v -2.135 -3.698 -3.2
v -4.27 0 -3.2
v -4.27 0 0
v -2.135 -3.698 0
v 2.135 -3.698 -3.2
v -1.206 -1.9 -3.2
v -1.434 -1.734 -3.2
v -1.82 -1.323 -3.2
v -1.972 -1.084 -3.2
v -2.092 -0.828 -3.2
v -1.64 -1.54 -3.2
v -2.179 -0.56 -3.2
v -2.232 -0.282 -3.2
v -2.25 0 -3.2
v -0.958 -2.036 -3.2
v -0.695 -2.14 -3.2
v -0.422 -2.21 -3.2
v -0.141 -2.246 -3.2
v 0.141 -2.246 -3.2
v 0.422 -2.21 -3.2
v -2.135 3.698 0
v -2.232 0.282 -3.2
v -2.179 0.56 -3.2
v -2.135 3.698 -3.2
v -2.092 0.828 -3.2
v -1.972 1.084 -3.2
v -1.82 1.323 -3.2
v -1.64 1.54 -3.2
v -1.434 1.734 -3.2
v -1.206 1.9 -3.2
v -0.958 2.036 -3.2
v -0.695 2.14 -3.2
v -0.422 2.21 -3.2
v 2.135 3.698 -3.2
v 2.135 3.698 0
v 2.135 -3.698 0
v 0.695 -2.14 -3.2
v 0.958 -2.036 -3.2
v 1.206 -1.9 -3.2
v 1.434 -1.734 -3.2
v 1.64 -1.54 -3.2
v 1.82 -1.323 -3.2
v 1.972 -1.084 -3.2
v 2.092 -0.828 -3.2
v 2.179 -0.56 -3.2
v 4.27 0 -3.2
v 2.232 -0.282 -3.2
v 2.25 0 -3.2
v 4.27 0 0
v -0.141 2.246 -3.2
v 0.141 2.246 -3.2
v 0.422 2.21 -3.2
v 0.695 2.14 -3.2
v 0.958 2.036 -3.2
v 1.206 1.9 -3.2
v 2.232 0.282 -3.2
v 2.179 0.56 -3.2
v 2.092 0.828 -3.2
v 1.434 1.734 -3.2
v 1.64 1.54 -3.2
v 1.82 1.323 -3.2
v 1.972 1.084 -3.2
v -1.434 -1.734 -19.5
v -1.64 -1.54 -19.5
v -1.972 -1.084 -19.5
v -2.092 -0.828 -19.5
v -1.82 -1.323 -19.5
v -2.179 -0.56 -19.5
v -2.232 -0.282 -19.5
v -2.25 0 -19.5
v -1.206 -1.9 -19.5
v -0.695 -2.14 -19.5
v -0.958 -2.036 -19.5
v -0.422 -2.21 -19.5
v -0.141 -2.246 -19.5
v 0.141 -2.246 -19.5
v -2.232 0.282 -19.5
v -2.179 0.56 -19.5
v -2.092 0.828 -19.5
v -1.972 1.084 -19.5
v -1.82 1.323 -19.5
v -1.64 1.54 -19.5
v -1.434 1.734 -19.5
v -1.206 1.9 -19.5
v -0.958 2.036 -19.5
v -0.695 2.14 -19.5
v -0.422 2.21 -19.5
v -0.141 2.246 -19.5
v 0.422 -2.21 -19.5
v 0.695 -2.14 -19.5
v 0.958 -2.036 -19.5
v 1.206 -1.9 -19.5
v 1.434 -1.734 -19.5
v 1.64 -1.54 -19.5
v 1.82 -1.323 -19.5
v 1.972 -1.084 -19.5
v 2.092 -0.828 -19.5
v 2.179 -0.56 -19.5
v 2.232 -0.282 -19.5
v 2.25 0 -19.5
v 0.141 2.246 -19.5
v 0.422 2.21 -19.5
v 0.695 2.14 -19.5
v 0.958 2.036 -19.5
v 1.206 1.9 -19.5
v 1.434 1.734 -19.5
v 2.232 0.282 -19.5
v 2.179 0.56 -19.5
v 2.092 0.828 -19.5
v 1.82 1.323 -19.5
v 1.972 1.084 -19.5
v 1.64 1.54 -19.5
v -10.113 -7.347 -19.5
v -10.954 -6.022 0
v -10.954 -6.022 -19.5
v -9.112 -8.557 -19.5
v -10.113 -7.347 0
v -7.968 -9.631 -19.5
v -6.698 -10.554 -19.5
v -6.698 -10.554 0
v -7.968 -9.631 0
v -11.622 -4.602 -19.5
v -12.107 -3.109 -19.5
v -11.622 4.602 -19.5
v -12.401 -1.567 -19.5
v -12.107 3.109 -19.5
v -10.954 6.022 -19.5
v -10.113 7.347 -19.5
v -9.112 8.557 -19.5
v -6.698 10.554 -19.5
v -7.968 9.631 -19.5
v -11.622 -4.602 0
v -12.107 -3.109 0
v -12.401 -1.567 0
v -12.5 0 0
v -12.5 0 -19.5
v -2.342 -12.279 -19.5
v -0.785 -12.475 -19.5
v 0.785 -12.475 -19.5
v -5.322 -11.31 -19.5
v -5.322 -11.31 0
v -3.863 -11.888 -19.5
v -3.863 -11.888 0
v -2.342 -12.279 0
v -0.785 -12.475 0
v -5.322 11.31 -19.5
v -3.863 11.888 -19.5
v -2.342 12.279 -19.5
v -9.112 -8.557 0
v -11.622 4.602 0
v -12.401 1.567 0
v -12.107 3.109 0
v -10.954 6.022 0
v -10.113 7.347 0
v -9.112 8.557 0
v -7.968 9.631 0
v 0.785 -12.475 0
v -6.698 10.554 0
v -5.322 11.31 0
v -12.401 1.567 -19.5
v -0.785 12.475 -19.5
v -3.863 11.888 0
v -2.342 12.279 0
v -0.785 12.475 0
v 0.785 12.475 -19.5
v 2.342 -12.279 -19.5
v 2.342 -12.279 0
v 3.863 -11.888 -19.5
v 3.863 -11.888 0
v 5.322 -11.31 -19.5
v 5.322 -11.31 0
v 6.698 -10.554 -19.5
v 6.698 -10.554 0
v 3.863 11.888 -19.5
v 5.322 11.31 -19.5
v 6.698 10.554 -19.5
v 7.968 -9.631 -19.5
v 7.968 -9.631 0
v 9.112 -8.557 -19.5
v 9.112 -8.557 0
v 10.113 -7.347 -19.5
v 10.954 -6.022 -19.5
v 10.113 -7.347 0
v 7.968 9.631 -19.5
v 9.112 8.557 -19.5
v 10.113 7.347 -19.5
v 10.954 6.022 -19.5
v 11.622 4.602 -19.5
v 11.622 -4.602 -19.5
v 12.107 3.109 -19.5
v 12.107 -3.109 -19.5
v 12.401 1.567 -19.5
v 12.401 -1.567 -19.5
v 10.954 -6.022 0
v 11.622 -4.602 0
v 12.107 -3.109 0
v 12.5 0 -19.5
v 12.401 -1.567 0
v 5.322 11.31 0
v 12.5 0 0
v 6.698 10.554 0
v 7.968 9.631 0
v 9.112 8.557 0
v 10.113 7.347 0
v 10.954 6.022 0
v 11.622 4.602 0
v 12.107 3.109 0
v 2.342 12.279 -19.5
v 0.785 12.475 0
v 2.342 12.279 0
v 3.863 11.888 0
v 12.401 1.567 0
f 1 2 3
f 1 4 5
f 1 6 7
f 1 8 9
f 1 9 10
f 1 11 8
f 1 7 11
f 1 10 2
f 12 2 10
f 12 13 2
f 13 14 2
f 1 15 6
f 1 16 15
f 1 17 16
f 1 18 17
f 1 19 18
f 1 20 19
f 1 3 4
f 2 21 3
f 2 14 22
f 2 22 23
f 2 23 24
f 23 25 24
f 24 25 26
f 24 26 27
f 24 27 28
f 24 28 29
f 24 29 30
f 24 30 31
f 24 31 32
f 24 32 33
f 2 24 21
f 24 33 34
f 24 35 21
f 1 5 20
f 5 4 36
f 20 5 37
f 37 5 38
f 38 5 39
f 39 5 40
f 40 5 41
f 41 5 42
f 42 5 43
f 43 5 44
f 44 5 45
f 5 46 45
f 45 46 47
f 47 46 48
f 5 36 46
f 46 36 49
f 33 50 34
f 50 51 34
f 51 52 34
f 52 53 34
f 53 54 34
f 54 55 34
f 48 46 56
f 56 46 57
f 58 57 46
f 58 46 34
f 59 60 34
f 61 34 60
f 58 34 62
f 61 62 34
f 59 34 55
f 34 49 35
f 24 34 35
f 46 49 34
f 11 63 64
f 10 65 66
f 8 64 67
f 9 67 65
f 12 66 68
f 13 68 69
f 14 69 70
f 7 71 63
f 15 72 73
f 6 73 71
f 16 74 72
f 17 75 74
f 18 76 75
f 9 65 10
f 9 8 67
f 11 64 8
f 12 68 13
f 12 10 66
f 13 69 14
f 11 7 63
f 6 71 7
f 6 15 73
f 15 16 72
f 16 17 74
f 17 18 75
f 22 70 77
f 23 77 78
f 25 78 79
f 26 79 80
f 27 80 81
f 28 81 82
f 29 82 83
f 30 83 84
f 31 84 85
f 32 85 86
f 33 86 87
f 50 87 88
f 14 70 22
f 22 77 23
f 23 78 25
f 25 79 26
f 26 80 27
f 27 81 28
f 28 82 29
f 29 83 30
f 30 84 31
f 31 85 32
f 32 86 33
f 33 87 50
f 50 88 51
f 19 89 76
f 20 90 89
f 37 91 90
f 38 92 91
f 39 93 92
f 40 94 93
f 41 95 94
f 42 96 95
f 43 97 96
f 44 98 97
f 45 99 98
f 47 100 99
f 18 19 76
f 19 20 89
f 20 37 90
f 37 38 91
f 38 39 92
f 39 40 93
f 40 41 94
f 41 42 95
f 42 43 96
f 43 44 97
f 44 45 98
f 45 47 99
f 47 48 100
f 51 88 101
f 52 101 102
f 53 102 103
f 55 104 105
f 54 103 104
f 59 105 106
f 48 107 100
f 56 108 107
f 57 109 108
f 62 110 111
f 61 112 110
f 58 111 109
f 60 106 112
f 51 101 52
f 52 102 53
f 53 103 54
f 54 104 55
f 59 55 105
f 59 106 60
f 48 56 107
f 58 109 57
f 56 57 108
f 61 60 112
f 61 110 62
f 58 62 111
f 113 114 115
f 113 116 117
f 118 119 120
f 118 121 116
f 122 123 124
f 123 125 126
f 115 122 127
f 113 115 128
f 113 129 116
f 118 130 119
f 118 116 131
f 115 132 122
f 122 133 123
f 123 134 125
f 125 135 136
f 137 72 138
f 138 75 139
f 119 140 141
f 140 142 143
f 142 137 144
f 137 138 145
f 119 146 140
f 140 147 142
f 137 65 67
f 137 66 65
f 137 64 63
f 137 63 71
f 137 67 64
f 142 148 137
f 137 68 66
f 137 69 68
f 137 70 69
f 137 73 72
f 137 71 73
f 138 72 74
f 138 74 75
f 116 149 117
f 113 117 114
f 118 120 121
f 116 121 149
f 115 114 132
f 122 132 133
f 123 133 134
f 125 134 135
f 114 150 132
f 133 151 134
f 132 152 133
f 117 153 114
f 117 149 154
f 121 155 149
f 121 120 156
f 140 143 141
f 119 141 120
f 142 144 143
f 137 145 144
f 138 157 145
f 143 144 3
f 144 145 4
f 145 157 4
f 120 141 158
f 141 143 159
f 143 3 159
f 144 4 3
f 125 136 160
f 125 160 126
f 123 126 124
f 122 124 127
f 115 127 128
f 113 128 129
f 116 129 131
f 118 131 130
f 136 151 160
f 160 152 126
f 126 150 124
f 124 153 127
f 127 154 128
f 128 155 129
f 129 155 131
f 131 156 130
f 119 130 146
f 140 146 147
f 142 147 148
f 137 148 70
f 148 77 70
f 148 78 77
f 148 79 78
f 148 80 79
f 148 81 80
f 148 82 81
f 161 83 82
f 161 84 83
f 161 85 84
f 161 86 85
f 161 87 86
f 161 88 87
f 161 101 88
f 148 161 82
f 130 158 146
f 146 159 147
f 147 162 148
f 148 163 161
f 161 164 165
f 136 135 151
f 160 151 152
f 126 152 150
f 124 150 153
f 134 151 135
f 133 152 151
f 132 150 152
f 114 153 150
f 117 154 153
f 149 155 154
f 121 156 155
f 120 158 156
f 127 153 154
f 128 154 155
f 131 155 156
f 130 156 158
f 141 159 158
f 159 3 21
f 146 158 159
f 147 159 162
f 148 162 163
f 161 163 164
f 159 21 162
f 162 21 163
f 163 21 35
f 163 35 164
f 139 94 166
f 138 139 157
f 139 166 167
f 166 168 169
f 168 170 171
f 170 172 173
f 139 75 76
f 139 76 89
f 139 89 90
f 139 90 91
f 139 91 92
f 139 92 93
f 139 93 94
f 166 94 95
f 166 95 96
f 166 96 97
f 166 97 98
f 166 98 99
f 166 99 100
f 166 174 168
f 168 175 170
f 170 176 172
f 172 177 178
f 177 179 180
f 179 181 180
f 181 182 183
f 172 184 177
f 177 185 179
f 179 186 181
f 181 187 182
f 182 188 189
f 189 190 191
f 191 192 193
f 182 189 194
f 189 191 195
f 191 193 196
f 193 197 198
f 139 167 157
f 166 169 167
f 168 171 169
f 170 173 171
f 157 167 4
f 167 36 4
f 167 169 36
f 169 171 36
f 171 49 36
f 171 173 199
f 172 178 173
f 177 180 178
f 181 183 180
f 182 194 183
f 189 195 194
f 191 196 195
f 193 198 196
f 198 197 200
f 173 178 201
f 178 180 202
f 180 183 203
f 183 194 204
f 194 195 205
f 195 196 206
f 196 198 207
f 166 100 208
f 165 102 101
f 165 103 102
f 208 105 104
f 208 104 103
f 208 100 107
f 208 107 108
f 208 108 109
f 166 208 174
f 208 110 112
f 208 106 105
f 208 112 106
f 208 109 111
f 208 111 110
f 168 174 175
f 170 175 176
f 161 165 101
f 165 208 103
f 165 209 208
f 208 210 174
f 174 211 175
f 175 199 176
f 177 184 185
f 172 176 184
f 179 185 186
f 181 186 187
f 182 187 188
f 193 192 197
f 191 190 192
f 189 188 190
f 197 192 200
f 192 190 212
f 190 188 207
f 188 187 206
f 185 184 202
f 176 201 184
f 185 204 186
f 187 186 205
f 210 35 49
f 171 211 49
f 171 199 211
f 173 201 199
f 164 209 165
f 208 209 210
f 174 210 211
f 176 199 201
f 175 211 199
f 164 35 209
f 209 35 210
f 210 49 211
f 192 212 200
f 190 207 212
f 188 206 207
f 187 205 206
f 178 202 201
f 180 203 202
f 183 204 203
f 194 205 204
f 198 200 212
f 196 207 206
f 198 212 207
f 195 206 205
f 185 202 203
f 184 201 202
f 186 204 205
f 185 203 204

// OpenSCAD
$fn = 50;

difference() {
	union() {
		translate(v = [0, 0, -19.5]) {
			cylinder(h = 19.5, r = 12.5);
		}
	}
	union() {
		translate(v = [0, 0, 0]) {
			rotate(a = [0, 0, 0]) {
				difference() {
					union() {
						translate(v = [0, 0, -3.2]) {
							linear_extrude(height = 3.2) {
								polygon(points = [[4.2698, 0.0], [2.1349000000000005, 3.697755269078796], [-2.134899999999999, 3.6977552690787965], [-4.2698, 5.228996902999369e-16], [-2.134900000000002, -3.6977552690787956], [2.1348999999999974, -3.697755269078798]]);
							}
						}
					}
					union();
				}
			}
		}
		#translate(v = [0, 0, -100.0]) {
			cylinder(h = 200, r = 2.25);
		}
	}
}
